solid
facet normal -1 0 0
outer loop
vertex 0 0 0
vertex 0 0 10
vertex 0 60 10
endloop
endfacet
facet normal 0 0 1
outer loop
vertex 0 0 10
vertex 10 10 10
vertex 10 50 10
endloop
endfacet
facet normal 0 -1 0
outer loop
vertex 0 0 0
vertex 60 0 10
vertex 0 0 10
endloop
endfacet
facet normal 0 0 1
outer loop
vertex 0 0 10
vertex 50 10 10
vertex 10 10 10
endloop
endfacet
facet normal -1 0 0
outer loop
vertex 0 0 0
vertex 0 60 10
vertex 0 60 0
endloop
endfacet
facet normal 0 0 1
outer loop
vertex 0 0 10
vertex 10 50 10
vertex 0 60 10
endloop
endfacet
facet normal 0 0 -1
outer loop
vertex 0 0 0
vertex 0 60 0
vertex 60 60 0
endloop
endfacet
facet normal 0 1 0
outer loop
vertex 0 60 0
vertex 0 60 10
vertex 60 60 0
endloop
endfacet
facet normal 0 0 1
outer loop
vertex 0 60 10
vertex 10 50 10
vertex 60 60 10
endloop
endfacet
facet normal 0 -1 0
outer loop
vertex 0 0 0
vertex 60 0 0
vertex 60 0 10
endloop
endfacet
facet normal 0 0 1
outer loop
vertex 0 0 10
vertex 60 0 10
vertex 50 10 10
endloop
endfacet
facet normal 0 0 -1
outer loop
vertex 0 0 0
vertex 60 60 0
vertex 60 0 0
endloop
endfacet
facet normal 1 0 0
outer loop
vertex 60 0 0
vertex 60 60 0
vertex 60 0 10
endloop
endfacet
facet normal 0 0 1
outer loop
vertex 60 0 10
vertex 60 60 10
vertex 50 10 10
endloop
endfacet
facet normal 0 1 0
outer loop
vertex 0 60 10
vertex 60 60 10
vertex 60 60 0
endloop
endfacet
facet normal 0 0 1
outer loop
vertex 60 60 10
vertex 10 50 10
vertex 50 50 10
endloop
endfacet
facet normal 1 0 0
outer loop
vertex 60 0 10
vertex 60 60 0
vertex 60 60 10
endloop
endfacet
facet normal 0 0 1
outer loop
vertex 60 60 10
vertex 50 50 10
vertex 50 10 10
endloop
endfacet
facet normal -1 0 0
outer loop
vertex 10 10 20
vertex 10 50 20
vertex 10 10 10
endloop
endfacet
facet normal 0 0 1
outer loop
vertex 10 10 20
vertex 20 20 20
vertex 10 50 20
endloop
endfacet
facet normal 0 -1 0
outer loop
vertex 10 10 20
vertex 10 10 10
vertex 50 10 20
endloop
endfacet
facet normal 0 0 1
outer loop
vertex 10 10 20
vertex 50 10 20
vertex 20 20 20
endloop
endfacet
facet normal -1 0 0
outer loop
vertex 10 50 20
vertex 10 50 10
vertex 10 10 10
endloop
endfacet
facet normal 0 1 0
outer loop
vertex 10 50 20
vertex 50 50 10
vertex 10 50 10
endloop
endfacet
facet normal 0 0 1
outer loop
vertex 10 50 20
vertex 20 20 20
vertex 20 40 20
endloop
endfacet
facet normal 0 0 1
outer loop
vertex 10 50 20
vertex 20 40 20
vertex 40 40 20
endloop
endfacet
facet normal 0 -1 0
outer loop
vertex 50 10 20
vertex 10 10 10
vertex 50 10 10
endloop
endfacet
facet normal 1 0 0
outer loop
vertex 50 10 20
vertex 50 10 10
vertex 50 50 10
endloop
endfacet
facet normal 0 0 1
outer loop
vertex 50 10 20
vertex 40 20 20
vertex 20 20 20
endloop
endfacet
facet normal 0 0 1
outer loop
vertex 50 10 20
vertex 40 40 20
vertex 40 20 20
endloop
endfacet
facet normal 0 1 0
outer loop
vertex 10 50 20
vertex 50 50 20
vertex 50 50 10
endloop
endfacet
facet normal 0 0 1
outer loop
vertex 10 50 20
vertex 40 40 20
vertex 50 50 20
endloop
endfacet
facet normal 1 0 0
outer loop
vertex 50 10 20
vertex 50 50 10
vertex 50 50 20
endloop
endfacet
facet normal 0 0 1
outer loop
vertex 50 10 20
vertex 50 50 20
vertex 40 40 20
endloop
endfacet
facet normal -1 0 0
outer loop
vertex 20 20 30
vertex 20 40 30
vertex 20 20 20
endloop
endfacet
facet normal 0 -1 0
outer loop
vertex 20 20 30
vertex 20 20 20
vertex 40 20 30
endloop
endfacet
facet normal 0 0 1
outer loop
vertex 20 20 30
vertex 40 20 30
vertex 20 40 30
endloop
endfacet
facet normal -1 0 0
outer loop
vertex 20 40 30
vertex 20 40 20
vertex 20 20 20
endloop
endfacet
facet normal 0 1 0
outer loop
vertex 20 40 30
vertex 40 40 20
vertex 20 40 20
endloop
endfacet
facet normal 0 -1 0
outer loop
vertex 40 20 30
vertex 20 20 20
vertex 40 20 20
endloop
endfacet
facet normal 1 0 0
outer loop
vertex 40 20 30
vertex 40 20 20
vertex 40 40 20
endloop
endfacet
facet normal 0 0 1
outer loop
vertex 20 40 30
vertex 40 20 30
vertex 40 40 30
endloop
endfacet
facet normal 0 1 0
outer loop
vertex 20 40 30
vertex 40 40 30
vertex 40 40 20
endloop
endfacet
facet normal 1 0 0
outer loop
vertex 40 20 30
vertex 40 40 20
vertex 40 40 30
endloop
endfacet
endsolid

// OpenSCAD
union() {
    cube([60, 60, 10]);
    translate([10, 10, 10]) cube([40, 40, 10]);
    translate([20, 20, 20]) cube([20, 20, 10]);
}
